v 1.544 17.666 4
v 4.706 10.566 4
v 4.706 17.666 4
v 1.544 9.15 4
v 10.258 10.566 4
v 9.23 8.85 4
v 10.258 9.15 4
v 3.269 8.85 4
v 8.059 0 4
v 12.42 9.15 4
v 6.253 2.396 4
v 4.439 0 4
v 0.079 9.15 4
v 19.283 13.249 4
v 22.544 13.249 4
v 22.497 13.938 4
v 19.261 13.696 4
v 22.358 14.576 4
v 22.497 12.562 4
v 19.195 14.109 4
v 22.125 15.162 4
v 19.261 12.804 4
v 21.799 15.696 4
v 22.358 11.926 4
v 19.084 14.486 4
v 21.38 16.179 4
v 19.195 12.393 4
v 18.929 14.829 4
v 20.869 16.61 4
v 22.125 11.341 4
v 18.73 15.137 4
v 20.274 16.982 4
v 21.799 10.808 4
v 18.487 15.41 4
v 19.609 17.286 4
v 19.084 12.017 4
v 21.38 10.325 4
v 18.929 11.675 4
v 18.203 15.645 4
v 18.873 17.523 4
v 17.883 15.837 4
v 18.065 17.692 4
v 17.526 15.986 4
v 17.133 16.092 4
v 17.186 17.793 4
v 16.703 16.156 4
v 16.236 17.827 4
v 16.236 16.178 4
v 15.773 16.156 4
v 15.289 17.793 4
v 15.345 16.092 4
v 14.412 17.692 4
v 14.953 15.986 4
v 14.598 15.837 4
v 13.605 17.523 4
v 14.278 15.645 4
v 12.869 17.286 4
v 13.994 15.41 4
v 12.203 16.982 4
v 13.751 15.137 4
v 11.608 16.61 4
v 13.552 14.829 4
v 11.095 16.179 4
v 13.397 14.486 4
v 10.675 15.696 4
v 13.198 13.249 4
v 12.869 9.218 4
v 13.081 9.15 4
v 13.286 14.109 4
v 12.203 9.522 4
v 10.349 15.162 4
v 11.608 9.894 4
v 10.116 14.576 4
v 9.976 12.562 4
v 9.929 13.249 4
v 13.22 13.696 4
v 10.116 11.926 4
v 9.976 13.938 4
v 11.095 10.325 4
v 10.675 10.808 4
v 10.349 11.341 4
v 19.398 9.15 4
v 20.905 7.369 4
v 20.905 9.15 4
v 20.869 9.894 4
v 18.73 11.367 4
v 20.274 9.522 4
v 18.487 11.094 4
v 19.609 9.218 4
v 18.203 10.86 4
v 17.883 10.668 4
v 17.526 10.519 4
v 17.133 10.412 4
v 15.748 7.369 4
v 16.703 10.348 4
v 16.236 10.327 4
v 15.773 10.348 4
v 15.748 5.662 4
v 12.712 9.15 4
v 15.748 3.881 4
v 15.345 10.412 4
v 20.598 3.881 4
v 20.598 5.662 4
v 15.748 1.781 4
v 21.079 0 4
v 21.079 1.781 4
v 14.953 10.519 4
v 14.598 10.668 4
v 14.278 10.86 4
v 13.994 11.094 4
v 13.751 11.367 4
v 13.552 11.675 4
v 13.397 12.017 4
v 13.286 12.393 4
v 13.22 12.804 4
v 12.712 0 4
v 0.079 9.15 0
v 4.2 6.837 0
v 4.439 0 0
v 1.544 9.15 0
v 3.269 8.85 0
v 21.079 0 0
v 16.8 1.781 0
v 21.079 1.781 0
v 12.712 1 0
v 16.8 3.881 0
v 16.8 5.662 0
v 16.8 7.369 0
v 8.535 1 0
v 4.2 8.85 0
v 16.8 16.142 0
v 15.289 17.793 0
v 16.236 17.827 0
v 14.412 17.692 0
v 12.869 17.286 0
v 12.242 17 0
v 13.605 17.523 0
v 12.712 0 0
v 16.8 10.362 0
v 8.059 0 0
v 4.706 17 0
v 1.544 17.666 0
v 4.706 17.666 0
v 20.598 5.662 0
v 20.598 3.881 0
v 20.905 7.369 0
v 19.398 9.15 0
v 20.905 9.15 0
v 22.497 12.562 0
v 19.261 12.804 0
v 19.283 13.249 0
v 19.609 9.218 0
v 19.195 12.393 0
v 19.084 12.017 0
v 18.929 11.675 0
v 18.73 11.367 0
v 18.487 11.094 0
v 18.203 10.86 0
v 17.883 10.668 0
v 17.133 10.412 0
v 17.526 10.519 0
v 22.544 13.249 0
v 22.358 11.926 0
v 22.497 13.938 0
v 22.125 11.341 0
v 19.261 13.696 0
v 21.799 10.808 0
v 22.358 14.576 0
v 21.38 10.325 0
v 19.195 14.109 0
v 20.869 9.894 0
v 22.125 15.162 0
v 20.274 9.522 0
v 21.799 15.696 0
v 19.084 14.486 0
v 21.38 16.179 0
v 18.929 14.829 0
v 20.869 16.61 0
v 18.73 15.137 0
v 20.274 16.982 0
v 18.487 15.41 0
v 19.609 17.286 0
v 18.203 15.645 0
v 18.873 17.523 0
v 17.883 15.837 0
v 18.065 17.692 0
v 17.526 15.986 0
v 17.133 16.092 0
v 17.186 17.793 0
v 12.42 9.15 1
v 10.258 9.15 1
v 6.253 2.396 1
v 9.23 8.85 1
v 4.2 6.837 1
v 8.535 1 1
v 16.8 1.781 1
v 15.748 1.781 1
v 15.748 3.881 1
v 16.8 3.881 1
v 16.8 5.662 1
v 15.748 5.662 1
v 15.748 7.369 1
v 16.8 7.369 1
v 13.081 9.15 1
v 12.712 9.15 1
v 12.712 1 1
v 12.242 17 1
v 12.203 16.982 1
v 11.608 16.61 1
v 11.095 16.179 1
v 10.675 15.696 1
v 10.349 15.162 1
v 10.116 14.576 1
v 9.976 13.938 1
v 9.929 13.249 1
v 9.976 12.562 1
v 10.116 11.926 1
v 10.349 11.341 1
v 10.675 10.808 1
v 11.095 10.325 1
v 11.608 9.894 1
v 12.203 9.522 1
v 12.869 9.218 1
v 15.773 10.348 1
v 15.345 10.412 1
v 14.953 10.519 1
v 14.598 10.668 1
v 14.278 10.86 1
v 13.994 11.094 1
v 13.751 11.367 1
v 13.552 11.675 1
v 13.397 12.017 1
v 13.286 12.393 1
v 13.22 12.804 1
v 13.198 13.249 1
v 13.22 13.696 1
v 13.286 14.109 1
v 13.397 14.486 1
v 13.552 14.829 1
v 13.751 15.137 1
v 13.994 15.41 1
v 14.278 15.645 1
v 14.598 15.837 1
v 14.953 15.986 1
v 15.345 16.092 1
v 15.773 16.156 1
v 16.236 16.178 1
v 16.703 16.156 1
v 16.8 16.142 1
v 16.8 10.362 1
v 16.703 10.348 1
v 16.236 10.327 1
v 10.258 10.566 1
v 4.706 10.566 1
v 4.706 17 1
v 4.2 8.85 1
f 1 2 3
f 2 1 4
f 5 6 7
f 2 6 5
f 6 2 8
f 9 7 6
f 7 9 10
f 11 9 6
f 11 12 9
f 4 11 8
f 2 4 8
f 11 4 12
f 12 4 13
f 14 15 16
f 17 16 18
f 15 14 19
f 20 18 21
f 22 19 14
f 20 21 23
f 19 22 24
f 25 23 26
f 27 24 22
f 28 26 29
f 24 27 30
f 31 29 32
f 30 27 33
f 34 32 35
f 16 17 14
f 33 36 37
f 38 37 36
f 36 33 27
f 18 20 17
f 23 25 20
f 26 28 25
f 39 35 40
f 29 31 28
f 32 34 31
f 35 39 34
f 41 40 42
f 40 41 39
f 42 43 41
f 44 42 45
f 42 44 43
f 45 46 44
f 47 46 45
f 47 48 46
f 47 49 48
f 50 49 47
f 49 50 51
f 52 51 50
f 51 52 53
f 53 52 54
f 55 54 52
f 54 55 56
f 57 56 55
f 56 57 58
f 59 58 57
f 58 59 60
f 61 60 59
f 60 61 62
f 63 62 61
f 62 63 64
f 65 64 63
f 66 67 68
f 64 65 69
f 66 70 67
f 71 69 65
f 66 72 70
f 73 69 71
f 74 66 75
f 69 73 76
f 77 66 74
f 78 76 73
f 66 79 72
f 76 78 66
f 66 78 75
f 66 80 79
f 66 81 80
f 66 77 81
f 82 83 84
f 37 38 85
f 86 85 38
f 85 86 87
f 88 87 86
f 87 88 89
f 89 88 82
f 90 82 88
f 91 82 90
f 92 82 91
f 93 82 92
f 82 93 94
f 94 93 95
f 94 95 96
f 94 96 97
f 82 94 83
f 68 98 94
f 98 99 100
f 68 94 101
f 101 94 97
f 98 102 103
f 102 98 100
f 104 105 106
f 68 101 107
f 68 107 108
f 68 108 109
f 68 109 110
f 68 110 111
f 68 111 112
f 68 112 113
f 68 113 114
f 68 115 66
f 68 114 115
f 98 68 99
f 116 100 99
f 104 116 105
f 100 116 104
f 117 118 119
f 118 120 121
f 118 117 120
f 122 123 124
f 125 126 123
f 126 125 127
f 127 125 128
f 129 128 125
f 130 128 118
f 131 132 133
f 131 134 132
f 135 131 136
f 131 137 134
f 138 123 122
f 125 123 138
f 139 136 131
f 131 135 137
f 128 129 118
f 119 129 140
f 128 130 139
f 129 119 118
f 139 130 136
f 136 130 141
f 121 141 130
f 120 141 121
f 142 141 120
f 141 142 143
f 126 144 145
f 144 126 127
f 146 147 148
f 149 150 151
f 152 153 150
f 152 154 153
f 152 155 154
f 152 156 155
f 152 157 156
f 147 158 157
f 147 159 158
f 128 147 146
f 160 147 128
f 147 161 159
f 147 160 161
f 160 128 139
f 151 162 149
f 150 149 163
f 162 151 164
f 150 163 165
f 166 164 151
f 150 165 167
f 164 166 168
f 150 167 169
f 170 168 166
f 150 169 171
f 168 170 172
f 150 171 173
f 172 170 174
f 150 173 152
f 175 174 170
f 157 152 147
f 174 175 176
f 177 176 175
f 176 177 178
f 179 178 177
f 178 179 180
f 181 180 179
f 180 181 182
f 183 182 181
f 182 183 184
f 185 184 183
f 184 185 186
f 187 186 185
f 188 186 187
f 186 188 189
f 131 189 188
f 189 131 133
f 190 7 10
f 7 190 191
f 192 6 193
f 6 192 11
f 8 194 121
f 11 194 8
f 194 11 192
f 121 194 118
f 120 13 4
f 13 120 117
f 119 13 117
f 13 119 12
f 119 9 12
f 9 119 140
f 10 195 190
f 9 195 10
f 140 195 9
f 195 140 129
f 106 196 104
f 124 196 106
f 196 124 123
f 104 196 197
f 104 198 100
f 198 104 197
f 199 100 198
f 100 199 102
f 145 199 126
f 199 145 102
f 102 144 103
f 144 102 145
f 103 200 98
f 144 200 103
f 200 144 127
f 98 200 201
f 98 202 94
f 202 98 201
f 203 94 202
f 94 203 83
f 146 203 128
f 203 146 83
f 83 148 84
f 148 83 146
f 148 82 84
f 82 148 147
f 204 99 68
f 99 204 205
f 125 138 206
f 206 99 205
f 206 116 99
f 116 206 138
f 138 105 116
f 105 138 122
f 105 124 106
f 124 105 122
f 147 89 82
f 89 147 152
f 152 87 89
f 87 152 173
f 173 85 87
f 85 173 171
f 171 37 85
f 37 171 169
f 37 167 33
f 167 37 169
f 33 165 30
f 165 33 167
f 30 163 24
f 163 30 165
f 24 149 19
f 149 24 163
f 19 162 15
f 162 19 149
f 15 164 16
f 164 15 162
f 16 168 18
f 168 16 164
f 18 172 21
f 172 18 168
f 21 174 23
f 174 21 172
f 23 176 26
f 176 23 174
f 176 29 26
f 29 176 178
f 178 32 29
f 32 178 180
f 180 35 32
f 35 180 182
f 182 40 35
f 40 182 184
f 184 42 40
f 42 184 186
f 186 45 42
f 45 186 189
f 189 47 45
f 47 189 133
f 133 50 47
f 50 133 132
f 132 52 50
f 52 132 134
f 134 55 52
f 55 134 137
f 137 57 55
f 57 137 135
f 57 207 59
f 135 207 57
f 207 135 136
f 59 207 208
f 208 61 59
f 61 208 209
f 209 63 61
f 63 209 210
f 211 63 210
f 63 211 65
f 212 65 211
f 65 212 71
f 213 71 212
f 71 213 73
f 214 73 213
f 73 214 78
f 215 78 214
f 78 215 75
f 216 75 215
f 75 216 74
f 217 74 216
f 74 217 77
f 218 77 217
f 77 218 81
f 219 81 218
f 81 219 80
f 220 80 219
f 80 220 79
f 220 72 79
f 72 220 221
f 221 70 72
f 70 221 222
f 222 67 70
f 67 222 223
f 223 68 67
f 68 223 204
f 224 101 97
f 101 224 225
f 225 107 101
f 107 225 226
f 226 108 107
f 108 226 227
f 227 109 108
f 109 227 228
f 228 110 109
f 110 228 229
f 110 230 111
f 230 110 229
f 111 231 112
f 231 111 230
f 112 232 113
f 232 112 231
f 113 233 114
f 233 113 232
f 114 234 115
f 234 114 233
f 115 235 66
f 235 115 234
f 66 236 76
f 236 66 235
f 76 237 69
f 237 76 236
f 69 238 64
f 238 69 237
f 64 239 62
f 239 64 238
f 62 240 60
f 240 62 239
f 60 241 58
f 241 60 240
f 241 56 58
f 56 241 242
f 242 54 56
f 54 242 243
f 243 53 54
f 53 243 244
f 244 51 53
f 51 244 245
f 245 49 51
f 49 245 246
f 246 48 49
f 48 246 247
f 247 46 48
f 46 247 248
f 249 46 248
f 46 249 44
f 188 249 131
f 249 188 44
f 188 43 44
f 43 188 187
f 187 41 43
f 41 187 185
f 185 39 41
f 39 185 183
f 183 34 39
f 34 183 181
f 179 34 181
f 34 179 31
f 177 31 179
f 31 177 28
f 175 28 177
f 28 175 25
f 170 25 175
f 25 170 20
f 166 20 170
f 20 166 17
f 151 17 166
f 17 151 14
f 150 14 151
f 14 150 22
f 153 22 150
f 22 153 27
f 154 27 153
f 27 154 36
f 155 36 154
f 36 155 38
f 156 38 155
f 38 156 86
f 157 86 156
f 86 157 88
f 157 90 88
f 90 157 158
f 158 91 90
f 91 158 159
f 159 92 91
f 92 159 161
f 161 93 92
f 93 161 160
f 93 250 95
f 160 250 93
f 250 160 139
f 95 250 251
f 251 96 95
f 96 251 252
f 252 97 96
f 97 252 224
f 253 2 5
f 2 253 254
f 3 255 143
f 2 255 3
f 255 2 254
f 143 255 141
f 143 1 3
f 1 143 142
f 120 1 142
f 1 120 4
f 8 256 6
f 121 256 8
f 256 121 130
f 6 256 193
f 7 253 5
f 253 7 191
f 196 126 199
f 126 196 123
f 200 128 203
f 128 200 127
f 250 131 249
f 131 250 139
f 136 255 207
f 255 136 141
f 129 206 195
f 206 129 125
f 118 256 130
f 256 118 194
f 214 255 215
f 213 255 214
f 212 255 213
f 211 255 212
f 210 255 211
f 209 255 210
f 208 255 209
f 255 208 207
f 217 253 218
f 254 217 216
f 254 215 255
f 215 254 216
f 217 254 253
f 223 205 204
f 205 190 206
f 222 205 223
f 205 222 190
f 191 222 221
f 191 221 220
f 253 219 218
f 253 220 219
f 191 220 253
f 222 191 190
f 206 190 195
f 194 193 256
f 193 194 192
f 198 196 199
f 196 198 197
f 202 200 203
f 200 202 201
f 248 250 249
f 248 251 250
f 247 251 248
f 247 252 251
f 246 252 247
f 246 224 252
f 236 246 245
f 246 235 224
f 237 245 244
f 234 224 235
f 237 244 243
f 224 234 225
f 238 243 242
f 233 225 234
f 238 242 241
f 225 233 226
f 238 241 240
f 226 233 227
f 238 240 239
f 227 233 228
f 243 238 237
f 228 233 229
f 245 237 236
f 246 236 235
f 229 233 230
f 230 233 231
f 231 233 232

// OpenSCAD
// LOVE_Letters.stl  -  Store Versile room frame (Rev C)
// Quantity: 1   Filament: White (e.g. PLA Basic Jade White / Matte Ivory White)
// Print: layer 0.12 mm, infill 100%, 2 walls, brim 0 mm, NO supports
// Orientation: back  (lying on its back, front face up)
// Notes: Letters face up.
// The library draws parts with their front toward +Y; mirror([0,1,0]) makes the real
// part face the viewer correctly (see build.py). Edit dimensions in versile_parts.scad.
use <../versile_parts.scad>

rotate([-90, 0, 0]) mirror([0, 1, 0]) love_letters();
